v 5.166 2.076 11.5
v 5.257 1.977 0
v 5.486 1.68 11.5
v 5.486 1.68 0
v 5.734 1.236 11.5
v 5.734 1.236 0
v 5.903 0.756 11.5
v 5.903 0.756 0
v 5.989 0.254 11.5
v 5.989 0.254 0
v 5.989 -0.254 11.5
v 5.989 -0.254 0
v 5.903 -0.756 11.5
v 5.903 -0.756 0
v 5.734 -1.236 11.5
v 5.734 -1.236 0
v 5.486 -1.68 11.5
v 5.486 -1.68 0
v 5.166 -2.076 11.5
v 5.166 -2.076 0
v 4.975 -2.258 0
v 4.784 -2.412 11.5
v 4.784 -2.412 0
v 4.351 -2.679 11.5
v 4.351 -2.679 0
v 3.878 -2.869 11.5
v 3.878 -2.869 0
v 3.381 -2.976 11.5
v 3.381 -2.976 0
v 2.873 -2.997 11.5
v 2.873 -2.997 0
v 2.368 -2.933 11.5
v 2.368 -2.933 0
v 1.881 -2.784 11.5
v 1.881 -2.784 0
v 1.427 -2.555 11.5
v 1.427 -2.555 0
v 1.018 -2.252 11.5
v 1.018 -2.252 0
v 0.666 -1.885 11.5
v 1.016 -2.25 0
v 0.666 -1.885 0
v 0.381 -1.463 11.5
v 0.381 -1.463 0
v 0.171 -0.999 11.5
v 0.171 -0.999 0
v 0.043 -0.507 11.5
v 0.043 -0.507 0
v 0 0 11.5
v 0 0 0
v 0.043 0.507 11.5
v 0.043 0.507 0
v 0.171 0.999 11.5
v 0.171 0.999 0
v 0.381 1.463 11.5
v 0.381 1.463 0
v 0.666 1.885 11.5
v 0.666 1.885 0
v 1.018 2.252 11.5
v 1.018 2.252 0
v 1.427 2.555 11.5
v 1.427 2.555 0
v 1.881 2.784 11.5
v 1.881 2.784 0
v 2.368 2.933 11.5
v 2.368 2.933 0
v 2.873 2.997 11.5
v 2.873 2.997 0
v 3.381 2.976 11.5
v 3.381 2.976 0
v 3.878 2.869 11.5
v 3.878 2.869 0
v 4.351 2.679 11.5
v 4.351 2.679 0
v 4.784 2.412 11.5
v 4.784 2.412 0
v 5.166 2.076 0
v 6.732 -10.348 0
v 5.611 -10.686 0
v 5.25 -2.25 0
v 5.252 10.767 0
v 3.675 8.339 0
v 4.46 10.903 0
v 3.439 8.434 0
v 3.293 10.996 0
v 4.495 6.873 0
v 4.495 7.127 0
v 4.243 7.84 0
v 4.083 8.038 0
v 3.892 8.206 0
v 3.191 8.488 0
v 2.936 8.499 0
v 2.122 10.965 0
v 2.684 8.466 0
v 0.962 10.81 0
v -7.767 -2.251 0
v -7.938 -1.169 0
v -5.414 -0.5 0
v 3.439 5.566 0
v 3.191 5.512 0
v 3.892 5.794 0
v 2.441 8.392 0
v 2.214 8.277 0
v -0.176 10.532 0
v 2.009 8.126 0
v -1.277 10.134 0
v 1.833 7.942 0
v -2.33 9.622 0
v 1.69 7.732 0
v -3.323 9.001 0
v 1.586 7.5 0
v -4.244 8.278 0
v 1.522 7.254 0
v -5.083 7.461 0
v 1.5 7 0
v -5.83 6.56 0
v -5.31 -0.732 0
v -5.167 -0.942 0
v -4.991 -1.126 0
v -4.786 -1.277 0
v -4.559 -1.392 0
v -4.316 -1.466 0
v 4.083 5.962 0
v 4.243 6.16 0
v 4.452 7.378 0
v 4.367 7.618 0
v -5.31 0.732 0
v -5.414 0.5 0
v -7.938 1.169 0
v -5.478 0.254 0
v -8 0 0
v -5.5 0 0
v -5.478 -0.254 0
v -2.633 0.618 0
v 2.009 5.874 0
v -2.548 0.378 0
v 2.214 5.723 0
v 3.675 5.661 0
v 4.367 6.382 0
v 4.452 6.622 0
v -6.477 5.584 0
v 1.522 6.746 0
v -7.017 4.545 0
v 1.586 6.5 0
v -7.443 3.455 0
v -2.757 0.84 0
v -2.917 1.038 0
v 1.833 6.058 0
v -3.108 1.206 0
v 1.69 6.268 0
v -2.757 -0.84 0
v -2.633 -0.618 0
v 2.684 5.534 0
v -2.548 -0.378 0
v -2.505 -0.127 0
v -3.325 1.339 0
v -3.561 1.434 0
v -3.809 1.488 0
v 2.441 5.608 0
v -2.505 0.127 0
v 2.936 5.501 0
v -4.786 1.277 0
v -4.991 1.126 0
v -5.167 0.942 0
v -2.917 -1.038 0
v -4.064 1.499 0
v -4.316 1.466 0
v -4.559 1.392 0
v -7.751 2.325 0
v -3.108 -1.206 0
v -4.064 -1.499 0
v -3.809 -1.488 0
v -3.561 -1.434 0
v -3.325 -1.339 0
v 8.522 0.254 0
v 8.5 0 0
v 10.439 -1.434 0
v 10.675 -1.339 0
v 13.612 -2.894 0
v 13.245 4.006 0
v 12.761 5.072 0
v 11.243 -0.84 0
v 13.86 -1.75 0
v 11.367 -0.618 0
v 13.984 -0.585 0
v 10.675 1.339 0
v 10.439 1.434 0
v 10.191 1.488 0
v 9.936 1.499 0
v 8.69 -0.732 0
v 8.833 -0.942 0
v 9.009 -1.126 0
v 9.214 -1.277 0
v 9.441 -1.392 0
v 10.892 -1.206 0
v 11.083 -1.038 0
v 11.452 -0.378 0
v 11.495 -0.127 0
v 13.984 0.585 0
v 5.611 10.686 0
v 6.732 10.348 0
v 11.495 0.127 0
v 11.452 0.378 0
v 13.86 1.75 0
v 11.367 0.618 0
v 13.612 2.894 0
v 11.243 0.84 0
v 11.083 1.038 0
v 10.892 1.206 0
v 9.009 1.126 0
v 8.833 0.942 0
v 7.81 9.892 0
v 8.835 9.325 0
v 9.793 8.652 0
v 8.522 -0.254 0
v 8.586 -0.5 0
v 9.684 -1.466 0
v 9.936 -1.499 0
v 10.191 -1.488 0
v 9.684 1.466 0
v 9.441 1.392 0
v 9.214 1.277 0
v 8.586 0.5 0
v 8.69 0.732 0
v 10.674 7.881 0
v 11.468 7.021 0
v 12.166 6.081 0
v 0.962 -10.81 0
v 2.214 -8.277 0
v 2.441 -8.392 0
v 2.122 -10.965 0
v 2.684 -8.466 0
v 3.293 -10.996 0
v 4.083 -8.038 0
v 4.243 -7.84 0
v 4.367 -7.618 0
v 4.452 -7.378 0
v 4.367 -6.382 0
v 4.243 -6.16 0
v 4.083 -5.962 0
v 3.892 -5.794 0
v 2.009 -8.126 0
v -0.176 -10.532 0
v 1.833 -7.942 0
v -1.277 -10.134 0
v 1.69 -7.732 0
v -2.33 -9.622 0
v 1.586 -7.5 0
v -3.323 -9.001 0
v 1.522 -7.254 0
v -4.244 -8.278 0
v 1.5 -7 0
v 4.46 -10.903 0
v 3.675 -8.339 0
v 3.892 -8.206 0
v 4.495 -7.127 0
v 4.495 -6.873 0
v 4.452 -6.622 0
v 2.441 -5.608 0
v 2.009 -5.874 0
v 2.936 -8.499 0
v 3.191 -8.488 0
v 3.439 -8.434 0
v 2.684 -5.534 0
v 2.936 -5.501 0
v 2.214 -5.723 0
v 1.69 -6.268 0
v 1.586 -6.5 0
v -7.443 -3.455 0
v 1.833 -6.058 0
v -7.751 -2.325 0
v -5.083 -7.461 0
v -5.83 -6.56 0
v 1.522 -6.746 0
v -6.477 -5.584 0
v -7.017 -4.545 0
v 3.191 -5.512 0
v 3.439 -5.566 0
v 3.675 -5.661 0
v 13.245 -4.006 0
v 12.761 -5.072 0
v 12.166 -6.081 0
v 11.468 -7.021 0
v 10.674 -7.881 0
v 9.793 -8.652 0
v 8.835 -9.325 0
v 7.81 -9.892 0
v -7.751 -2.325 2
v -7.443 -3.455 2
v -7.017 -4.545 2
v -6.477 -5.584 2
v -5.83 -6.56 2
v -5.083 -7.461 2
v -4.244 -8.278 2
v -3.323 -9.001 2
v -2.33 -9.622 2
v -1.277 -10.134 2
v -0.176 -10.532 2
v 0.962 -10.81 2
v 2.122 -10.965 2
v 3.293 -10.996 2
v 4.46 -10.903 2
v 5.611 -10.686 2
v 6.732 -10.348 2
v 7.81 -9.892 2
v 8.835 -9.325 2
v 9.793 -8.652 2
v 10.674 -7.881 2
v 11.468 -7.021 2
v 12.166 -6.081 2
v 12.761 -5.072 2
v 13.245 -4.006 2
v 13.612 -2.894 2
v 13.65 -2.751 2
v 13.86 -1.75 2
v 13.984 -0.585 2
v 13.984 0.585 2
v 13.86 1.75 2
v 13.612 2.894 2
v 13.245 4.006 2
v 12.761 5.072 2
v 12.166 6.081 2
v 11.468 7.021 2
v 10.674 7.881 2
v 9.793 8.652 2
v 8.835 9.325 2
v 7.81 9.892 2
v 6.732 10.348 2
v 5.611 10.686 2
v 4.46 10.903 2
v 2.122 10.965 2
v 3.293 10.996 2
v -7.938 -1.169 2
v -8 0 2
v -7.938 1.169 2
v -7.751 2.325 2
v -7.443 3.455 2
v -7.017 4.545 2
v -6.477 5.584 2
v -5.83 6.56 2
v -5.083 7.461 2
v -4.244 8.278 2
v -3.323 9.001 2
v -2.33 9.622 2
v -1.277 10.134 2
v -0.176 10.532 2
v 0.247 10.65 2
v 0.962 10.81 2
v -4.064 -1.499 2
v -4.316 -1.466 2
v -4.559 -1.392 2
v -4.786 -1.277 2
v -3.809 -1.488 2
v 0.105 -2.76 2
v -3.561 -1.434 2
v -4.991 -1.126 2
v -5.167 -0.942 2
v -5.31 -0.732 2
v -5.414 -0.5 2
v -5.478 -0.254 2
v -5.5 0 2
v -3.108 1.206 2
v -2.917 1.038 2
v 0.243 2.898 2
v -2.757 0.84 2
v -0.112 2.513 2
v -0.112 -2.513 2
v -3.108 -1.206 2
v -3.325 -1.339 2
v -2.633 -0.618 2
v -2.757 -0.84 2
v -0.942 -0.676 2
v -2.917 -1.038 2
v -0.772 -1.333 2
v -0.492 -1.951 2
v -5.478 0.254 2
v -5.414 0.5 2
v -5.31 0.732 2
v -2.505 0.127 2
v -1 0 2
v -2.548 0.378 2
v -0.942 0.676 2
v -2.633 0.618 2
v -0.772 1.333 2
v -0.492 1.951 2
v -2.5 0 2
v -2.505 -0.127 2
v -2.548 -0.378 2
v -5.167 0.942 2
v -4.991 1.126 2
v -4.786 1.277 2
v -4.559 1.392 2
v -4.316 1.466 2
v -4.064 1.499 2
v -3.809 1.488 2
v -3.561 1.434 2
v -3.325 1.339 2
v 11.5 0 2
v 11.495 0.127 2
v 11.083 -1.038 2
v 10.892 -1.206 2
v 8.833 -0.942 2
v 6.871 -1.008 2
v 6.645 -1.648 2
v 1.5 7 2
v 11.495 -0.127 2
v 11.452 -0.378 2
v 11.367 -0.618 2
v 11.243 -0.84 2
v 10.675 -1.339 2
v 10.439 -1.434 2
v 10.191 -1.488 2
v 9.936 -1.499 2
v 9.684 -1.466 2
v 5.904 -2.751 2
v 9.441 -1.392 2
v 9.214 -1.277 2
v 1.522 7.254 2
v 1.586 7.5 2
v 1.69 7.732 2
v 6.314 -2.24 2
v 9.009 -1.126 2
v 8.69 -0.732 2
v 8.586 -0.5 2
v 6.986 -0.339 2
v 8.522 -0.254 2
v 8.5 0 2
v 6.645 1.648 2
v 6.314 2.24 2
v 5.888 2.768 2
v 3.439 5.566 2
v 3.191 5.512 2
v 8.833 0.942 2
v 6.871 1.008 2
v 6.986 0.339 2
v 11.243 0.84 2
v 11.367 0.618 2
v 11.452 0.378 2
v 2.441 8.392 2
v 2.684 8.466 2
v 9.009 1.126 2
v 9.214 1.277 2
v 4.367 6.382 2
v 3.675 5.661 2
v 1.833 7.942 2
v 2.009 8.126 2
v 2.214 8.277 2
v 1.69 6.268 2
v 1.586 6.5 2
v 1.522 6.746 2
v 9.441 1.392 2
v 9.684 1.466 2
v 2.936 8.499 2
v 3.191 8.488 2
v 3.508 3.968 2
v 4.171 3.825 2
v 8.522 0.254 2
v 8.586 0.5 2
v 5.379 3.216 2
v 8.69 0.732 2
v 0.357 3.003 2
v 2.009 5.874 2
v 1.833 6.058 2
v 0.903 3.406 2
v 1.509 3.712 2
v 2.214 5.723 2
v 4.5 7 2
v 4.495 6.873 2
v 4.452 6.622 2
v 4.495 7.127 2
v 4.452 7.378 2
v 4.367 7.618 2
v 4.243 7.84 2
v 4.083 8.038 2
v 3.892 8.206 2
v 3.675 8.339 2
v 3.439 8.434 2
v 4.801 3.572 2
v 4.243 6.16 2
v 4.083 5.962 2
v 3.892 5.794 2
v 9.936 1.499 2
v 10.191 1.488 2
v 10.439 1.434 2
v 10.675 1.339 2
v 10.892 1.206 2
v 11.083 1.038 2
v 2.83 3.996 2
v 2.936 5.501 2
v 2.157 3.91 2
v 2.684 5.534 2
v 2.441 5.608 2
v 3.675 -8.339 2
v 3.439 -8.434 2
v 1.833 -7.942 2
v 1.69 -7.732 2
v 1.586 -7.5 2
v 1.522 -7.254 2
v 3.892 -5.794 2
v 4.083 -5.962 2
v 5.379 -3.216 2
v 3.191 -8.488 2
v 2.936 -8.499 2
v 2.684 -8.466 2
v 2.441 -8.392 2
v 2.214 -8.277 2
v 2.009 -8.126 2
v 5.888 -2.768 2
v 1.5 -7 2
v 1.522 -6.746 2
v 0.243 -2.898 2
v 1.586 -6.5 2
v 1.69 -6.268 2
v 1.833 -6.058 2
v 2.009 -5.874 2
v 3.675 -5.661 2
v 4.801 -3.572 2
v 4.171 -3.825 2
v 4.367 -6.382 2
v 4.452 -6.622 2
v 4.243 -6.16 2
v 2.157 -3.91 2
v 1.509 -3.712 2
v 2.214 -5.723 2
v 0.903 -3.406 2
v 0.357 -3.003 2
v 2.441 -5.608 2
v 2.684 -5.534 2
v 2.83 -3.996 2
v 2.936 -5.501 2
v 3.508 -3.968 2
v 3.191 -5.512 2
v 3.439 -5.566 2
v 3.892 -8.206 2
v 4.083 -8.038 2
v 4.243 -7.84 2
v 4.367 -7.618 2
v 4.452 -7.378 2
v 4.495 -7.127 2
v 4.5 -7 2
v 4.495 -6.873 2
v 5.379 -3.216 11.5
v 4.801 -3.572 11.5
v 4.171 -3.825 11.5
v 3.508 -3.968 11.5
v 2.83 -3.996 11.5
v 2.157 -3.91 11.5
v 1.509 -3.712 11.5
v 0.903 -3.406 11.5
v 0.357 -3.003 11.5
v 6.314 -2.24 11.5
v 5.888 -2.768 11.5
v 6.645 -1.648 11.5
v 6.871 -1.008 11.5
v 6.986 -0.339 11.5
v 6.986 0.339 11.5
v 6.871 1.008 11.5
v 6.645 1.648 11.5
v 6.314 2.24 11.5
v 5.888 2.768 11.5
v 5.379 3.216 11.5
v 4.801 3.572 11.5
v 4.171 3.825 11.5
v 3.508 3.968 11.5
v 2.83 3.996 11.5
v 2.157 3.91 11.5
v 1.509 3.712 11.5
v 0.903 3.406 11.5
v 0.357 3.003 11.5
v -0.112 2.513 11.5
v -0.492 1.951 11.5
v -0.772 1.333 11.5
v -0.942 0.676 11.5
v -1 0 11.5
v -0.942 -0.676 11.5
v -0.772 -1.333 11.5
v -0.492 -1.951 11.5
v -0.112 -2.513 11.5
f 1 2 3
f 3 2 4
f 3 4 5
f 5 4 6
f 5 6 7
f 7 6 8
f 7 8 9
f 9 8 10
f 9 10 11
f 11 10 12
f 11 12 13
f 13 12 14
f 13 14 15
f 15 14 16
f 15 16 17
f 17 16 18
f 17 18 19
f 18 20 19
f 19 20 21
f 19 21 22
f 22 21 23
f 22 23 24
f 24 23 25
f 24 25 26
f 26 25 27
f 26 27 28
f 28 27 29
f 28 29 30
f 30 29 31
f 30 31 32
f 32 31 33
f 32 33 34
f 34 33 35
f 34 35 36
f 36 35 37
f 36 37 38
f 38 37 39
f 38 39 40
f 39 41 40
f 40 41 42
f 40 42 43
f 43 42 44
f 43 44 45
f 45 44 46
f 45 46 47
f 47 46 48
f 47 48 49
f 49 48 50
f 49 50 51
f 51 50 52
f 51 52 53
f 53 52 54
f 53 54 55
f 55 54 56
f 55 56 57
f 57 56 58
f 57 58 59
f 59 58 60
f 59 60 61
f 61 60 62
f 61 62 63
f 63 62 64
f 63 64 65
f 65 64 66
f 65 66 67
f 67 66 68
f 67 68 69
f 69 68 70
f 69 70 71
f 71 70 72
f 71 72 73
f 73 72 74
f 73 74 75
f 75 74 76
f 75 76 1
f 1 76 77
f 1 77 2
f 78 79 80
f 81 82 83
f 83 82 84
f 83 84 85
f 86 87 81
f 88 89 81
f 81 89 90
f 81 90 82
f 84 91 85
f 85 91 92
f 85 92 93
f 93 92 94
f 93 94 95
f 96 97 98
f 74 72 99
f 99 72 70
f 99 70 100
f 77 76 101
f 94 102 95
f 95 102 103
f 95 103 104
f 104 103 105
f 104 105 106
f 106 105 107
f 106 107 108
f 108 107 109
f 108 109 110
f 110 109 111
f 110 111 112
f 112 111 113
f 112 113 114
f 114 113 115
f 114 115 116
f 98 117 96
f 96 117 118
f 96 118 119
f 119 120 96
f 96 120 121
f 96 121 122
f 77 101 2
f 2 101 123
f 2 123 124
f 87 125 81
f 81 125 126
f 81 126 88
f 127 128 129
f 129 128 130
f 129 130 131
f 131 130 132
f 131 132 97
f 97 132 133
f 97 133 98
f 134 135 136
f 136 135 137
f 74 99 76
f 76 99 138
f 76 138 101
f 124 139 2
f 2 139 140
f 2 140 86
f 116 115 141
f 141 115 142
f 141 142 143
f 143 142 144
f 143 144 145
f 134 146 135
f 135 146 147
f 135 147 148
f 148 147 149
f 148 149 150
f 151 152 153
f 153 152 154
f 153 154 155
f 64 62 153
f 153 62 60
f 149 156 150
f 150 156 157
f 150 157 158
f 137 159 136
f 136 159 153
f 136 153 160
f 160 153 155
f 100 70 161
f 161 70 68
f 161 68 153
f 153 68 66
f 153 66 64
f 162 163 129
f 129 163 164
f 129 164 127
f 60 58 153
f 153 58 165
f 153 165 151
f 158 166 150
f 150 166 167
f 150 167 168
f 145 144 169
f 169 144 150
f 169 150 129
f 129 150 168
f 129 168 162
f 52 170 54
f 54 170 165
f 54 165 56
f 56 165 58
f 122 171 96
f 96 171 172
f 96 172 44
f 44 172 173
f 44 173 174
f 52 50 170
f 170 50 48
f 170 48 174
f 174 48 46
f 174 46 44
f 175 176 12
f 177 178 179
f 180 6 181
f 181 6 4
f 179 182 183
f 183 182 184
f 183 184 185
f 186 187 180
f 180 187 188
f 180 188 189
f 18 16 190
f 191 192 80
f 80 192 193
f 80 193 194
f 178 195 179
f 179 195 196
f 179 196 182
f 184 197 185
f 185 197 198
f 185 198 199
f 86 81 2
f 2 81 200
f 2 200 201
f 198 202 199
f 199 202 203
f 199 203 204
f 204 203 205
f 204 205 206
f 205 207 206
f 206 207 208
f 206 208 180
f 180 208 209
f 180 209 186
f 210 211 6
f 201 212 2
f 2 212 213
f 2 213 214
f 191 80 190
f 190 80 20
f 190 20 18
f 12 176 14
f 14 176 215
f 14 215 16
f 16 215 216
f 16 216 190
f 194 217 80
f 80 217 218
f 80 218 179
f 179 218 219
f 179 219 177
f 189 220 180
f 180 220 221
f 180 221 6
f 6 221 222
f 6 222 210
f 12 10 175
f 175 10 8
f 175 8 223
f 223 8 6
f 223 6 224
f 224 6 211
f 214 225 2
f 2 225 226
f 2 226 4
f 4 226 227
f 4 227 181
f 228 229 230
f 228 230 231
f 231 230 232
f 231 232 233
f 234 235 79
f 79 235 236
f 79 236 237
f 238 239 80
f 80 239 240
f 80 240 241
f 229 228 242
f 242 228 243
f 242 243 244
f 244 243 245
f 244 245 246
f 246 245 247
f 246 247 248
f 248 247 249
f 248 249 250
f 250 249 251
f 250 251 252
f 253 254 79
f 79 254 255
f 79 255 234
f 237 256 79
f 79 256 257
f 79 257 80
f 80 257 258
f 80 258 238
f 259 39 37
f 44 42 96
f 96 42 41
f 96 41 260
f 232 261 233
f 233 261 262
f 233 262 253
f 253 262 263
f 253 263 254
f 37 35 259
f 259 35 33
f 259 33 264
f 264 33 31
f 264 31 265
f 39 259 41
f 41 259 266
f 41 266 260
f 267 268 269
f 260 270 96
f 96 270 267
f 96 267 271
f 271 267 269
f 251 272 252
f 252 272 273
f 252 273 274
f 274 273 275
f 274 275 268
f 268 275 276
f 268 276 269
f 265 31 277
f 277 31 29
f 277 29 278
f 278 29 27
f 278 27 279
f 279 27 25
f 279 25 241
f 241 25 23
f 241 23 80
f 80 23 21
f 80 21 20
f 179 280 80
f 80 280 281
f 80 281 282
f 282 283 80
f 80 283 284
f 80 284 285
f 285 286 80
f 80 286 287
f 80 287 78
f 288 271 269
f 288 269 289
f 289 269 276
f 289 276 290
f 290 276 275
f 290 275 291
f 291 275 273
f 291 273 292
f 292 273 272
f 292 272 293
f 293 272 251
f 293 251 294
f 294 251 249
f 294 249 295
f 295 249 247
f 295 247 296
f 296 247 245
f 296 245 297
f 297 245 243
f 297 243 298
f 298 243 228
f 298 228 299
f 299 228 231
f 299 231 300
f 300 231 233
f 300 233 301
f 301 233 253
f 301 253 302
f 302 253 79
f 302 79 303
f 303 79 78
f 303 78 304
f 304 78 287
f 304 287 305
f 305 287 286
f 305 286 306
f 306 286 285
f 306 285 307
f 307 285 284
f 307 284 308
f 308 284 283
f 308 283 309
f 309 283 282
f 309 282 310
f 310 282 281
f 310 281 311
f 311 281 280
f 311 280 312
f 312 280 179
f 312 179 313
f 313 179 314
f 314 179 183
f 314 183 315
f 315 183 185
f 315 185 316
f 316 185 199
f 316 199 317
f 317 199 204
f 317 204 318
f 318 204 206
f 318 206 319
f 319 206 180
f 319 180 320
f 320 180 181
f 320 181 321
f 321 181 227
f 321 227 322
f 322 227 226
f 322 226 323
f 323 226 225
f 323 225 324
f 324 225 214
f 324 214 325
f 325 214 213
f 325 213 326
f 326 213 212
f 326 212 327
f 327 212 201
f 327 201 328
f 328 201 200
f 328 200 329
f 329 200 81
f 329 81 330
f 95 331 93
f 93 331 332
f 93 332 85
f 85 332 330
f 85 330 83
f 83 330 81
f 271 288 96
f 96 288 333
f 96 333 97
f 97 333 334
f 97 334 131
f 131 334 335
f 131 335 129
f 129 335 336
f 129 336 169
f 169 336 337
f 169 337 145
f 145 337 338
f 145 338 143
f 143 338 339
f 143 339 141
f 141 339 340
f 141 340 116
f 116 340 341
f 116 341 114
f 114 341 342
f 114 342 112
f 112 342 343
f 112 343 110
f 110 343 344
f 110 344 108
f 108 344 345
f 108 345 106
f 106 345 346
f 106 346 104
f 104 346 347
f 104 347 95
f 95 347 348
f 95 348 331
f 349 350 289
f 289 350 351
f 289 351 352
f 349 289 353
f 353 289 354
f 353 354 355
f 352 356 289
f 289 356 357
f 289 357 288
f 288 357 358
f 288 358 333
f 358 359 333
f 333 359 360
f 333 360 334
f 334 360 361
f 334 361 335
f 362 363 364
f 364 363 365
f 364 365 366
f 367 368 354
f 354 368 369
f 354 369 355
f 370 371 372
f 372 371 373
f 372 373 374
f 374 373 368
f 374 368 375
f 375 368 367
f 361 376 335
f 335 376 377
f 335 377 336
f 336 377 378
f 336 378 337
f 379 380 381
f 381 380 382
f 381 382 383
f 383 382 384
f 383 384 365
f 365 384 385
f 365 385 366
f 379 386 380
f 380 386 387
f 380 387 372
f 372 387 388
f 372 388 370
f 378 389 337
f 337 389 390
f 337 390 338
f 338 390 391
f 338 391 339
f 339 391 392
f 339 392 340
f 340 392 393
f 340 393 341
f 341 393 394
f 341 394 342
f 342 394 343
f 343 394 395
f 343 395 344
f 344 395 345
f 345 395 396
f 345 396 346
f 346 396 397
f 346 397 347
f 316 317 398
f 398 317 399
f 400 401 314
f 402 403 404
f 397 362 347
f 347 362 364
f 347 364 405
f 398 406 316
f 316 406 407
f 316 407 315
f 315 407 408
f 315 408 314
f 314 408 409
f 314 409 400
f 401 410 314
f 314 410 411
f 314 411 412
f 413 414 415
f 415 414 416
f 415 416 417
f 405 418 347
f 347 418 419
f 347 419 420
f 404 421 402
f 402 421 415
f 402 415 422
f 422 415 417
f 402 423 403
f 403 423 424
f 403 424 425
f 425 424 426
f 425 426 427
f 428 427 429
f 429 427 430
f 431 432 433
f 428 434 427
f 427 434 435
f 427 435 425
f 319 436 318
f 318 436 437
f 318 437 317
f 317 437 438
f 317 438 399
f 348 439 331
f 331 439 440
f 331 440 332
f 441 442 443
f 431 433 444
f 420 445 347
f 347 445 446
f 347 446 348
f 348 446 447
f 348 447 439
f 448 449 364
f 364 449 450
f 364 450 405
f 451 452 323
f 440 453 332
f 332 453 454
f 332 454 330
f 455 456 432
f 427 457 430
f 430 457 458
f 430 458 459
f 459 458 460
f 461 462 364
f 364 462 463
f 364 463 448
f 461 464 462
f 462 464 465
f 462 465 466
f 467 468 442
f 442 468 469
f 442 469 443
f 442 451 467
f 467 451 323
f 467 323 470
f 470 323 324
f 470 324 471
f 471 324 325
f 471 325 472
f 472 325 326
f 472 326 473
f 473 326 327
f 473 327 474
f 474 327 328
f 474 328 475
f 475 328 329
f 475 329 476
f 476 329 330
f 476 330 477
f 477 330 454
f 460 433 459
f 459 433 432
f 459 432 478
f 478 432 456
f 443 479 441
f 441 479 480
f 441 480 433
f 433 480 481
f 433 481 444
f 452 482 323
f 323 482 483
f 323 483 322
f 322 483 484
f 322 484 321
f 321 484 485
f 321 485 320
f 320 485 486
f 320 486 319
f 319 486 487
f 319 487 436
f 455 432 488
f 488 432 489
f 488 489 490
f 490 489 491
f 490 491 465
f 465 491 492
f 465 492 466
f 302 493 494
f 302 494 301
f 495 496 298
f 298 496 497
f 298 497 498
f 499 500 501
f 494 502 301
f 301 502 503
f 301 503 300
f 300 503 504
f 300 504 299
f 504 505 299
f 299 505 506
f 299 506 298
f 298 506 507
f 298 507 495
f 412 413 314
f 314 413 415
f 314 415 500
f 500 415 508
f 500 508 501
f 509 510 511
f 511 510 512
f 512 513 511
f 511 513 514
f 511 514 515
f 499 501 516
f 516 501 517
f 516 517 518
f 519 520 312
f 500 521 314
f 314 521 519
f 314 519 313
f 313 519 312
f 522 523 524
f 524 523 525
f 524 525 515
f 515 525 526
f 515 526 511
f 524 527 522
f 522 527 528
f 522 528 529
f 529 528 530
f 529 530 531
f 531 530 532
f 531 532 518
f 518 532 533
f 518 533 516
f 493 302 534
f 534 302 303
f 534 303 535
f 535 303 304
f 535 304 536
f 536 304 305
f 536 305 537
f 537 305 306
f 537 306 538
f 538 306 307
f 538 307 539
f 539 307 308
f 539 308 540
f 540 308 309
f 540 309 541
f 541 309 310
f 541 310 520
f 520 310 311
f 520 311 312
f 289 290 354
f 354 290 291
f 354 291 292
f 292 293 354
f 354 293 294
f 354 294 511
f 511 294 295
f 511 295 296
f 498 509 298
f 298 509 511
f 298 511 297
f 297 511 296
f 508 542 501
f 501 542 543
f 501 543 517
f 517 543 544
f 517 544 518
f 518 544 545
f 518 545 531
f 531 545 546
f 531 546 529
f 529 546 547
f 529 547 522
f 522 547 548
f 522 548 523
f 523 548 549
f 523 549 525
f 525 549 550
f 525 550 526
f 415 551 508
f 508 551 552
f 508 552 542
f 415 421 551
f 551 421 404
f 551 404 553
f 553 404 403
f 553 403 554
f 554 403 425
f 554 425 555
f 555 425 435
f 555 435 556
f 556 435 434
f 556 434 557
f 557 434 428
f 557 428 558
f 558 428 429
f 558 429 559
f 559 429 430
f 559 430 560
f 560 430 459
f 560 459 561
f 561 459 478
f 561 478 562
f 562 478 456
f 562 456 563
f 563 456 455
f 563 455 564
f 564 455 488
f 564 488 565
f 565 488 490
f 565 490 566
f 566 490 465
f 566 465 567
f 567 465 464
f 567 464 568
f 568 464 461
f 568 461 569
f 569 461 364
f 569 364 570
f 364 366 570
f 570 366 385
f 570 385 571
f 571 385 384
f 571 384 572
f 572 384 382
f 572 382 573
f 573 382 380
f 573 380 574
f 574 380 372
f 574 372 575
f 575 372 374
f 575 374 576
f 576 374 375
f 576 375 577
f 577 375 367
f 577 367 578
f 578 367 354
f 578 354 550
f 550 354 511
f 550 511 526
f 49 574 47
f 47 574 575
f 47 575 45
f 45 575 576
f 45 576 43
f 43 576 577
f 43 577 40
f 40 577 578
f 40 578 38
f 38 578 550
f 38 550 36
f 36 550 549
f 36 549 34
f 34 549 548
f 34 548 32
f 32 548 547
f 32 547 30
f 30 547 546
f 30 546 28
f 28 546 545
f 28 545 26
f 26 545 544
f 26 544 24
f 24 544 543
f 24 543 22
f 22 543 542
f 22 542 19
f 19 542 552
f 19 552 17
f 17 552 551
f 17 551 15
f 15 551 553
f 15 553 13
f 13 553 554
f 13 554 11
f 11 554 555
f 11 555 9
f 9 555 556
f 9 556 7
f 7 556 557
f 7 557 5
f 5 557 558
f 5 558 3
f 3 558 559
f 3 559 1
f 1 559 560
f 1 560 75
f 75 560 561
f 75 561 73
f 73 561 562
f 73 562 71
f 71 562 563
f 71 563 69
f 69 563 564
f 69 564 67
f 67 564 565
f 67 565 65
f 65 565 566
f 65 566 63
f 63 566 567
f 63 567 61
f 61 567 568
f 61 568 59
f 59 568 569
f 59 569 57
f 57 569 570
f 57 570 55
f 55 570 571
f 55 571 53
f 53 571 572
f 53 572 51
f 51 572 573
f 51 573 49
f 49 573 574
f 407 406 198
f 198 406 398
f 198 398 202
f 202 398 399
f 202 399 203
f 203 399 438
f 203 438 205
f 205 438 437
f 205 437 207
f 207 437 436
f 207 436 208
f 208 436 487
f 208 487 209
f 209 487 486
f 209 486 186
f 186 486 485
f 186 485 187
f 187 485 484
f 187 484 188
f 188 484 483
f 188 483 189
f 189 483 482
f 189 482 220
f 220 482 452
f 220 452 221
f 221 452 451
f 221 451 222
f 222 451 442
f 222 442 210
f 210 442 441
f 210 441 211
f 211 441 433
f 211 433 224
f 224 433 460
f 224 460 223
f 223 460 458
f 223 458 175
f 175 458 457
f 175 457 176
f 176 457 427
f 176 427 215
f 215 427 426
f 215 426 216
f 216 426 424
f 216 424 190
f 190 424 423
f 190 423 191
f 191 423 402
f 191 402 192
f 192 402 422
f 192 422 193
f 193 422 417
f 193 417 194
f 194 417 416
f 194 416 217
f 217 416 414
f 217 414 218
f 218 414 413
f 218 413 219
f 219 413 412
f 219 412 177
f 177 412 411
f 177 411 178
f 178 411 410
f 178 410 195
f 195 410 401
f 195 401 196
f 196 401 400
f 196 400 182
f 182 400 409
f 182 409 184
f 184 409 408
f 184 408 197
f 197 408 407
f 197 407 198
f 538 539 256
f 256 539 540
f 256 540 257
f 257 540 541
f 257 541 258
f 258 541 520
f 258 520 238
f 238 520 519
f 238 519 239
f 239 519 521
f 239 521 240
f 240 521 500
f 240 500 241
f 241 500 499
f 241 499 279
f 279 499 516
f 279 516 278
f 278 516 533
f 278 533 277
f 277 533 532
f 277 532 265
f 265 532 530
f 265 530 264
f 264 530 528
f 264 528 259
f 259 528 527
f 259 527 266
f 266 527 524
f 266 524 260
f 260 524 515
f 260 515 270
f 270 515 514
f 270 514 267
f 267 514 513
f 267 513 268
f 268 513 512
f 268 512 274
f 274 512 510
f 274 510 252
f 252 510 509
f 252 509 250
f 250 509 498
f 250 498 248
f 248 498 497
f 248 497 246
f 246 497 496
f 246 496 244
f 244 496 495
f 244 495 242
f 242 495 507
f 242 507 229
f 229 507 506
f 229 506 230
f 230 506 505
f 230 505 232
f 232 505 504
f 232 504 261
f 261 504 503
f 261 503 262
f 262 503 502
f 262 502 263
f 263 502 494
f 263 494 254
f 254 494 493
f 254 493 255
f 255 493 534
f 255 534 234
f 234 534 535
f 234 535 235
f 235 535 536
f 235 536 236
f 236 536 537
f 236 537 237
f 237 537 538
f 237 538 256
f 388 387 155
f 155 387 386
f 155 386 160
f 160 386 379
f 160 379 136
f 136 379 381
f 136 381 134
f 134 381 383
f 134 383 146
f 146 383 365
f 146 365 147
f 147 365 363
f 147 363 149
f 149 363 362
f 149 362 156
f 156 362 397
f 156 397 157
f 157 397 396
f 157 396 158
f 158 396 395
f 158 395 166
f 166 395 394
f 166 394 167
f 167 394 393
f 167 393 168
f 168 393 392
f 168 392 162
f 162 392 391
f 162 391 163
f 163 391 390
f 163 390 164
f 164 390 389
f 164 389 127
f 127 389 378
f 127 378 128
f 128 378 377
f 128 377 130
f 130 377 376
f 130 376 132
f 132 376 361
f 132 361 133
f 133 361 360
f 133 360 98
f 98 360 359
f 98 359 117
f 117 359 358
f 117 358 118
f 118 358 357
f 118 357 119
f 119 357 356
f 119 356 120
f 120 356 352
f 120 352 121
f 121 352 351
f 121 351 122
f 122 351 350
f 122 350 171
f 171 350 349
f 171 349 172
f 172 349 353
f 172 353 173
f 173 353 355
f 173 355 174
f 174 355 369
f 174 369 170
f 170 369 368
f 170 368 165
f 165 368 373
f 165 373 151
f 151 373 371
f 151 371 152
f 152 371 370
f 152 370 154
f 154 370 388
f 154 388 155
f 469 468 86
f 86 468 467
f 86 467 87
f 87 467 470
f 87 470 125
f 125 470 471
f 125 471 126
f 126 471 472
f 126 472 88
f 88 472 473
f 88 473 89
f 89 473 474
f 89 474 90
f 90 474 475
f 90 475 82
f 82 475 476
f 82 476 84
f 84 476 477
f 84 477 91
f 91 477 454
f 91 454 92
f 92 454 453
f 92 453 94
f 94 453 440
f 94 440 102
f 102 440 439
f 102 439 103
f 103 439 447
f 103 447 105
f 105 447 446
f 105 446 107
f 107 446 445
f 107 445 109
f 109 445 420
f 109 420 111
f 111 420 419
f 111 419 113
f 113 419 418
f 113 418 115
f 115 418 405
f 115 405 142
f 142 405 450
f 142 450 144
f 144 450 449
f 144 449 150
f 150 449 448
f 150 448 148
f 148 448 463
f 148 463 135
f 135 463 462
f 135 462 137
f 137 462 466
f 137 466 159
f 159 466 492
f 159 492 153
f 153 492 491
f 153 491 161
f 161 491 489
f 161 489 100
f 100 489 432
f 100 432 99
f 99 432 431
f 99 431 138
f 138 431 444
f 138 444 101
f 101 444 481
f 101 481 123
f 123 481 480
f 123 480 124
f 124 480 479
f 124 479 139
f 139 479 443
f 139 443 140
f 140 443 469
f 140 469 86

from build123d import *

# Parameters (mm, degrees)
SKETCH_2_R          = 1.5
CUT_EXTRUDE_1_DEPTH = 10


with BuildPart() as part:
    # 草图1 → 旋转1 (revolve)
    with BuildSketch(Plane(origin=(0, 0, 0), x_dir=(1, 0, 0), z_dir=(0, 1, 0))):
        Polygon((0, 0), (-8, 0), (-8, -2), (-1, -2), (-1, -11.5), (0, -11.5), align=None)
    revolve(axis=Axis((3, 0, -3.355756156), (0, 0, 1)))

    # 草图2 → 切除-拉伸1 (cut)
    with BuildSketch(Plane(origin=(0, 0, 0), x_dir=(-1, 0, 0), z_dir=(0, 0, -1))):
        with Locations((-3, 7)):
            Circle(SKETCH_2_R)
        with Locations((4, 0)):
            Circle(SKETCH_2_R)
        with Locations((-3, -7)):
            Circle(SKETCH_2_R)
        with Locations((-10, 0)):
            Circle(SKETCH_2_R)
    extrude(amount=-CUT_EXTRUDE_1_DEPTH, mode=Mode.SUBTRACT)


solid = part.part
